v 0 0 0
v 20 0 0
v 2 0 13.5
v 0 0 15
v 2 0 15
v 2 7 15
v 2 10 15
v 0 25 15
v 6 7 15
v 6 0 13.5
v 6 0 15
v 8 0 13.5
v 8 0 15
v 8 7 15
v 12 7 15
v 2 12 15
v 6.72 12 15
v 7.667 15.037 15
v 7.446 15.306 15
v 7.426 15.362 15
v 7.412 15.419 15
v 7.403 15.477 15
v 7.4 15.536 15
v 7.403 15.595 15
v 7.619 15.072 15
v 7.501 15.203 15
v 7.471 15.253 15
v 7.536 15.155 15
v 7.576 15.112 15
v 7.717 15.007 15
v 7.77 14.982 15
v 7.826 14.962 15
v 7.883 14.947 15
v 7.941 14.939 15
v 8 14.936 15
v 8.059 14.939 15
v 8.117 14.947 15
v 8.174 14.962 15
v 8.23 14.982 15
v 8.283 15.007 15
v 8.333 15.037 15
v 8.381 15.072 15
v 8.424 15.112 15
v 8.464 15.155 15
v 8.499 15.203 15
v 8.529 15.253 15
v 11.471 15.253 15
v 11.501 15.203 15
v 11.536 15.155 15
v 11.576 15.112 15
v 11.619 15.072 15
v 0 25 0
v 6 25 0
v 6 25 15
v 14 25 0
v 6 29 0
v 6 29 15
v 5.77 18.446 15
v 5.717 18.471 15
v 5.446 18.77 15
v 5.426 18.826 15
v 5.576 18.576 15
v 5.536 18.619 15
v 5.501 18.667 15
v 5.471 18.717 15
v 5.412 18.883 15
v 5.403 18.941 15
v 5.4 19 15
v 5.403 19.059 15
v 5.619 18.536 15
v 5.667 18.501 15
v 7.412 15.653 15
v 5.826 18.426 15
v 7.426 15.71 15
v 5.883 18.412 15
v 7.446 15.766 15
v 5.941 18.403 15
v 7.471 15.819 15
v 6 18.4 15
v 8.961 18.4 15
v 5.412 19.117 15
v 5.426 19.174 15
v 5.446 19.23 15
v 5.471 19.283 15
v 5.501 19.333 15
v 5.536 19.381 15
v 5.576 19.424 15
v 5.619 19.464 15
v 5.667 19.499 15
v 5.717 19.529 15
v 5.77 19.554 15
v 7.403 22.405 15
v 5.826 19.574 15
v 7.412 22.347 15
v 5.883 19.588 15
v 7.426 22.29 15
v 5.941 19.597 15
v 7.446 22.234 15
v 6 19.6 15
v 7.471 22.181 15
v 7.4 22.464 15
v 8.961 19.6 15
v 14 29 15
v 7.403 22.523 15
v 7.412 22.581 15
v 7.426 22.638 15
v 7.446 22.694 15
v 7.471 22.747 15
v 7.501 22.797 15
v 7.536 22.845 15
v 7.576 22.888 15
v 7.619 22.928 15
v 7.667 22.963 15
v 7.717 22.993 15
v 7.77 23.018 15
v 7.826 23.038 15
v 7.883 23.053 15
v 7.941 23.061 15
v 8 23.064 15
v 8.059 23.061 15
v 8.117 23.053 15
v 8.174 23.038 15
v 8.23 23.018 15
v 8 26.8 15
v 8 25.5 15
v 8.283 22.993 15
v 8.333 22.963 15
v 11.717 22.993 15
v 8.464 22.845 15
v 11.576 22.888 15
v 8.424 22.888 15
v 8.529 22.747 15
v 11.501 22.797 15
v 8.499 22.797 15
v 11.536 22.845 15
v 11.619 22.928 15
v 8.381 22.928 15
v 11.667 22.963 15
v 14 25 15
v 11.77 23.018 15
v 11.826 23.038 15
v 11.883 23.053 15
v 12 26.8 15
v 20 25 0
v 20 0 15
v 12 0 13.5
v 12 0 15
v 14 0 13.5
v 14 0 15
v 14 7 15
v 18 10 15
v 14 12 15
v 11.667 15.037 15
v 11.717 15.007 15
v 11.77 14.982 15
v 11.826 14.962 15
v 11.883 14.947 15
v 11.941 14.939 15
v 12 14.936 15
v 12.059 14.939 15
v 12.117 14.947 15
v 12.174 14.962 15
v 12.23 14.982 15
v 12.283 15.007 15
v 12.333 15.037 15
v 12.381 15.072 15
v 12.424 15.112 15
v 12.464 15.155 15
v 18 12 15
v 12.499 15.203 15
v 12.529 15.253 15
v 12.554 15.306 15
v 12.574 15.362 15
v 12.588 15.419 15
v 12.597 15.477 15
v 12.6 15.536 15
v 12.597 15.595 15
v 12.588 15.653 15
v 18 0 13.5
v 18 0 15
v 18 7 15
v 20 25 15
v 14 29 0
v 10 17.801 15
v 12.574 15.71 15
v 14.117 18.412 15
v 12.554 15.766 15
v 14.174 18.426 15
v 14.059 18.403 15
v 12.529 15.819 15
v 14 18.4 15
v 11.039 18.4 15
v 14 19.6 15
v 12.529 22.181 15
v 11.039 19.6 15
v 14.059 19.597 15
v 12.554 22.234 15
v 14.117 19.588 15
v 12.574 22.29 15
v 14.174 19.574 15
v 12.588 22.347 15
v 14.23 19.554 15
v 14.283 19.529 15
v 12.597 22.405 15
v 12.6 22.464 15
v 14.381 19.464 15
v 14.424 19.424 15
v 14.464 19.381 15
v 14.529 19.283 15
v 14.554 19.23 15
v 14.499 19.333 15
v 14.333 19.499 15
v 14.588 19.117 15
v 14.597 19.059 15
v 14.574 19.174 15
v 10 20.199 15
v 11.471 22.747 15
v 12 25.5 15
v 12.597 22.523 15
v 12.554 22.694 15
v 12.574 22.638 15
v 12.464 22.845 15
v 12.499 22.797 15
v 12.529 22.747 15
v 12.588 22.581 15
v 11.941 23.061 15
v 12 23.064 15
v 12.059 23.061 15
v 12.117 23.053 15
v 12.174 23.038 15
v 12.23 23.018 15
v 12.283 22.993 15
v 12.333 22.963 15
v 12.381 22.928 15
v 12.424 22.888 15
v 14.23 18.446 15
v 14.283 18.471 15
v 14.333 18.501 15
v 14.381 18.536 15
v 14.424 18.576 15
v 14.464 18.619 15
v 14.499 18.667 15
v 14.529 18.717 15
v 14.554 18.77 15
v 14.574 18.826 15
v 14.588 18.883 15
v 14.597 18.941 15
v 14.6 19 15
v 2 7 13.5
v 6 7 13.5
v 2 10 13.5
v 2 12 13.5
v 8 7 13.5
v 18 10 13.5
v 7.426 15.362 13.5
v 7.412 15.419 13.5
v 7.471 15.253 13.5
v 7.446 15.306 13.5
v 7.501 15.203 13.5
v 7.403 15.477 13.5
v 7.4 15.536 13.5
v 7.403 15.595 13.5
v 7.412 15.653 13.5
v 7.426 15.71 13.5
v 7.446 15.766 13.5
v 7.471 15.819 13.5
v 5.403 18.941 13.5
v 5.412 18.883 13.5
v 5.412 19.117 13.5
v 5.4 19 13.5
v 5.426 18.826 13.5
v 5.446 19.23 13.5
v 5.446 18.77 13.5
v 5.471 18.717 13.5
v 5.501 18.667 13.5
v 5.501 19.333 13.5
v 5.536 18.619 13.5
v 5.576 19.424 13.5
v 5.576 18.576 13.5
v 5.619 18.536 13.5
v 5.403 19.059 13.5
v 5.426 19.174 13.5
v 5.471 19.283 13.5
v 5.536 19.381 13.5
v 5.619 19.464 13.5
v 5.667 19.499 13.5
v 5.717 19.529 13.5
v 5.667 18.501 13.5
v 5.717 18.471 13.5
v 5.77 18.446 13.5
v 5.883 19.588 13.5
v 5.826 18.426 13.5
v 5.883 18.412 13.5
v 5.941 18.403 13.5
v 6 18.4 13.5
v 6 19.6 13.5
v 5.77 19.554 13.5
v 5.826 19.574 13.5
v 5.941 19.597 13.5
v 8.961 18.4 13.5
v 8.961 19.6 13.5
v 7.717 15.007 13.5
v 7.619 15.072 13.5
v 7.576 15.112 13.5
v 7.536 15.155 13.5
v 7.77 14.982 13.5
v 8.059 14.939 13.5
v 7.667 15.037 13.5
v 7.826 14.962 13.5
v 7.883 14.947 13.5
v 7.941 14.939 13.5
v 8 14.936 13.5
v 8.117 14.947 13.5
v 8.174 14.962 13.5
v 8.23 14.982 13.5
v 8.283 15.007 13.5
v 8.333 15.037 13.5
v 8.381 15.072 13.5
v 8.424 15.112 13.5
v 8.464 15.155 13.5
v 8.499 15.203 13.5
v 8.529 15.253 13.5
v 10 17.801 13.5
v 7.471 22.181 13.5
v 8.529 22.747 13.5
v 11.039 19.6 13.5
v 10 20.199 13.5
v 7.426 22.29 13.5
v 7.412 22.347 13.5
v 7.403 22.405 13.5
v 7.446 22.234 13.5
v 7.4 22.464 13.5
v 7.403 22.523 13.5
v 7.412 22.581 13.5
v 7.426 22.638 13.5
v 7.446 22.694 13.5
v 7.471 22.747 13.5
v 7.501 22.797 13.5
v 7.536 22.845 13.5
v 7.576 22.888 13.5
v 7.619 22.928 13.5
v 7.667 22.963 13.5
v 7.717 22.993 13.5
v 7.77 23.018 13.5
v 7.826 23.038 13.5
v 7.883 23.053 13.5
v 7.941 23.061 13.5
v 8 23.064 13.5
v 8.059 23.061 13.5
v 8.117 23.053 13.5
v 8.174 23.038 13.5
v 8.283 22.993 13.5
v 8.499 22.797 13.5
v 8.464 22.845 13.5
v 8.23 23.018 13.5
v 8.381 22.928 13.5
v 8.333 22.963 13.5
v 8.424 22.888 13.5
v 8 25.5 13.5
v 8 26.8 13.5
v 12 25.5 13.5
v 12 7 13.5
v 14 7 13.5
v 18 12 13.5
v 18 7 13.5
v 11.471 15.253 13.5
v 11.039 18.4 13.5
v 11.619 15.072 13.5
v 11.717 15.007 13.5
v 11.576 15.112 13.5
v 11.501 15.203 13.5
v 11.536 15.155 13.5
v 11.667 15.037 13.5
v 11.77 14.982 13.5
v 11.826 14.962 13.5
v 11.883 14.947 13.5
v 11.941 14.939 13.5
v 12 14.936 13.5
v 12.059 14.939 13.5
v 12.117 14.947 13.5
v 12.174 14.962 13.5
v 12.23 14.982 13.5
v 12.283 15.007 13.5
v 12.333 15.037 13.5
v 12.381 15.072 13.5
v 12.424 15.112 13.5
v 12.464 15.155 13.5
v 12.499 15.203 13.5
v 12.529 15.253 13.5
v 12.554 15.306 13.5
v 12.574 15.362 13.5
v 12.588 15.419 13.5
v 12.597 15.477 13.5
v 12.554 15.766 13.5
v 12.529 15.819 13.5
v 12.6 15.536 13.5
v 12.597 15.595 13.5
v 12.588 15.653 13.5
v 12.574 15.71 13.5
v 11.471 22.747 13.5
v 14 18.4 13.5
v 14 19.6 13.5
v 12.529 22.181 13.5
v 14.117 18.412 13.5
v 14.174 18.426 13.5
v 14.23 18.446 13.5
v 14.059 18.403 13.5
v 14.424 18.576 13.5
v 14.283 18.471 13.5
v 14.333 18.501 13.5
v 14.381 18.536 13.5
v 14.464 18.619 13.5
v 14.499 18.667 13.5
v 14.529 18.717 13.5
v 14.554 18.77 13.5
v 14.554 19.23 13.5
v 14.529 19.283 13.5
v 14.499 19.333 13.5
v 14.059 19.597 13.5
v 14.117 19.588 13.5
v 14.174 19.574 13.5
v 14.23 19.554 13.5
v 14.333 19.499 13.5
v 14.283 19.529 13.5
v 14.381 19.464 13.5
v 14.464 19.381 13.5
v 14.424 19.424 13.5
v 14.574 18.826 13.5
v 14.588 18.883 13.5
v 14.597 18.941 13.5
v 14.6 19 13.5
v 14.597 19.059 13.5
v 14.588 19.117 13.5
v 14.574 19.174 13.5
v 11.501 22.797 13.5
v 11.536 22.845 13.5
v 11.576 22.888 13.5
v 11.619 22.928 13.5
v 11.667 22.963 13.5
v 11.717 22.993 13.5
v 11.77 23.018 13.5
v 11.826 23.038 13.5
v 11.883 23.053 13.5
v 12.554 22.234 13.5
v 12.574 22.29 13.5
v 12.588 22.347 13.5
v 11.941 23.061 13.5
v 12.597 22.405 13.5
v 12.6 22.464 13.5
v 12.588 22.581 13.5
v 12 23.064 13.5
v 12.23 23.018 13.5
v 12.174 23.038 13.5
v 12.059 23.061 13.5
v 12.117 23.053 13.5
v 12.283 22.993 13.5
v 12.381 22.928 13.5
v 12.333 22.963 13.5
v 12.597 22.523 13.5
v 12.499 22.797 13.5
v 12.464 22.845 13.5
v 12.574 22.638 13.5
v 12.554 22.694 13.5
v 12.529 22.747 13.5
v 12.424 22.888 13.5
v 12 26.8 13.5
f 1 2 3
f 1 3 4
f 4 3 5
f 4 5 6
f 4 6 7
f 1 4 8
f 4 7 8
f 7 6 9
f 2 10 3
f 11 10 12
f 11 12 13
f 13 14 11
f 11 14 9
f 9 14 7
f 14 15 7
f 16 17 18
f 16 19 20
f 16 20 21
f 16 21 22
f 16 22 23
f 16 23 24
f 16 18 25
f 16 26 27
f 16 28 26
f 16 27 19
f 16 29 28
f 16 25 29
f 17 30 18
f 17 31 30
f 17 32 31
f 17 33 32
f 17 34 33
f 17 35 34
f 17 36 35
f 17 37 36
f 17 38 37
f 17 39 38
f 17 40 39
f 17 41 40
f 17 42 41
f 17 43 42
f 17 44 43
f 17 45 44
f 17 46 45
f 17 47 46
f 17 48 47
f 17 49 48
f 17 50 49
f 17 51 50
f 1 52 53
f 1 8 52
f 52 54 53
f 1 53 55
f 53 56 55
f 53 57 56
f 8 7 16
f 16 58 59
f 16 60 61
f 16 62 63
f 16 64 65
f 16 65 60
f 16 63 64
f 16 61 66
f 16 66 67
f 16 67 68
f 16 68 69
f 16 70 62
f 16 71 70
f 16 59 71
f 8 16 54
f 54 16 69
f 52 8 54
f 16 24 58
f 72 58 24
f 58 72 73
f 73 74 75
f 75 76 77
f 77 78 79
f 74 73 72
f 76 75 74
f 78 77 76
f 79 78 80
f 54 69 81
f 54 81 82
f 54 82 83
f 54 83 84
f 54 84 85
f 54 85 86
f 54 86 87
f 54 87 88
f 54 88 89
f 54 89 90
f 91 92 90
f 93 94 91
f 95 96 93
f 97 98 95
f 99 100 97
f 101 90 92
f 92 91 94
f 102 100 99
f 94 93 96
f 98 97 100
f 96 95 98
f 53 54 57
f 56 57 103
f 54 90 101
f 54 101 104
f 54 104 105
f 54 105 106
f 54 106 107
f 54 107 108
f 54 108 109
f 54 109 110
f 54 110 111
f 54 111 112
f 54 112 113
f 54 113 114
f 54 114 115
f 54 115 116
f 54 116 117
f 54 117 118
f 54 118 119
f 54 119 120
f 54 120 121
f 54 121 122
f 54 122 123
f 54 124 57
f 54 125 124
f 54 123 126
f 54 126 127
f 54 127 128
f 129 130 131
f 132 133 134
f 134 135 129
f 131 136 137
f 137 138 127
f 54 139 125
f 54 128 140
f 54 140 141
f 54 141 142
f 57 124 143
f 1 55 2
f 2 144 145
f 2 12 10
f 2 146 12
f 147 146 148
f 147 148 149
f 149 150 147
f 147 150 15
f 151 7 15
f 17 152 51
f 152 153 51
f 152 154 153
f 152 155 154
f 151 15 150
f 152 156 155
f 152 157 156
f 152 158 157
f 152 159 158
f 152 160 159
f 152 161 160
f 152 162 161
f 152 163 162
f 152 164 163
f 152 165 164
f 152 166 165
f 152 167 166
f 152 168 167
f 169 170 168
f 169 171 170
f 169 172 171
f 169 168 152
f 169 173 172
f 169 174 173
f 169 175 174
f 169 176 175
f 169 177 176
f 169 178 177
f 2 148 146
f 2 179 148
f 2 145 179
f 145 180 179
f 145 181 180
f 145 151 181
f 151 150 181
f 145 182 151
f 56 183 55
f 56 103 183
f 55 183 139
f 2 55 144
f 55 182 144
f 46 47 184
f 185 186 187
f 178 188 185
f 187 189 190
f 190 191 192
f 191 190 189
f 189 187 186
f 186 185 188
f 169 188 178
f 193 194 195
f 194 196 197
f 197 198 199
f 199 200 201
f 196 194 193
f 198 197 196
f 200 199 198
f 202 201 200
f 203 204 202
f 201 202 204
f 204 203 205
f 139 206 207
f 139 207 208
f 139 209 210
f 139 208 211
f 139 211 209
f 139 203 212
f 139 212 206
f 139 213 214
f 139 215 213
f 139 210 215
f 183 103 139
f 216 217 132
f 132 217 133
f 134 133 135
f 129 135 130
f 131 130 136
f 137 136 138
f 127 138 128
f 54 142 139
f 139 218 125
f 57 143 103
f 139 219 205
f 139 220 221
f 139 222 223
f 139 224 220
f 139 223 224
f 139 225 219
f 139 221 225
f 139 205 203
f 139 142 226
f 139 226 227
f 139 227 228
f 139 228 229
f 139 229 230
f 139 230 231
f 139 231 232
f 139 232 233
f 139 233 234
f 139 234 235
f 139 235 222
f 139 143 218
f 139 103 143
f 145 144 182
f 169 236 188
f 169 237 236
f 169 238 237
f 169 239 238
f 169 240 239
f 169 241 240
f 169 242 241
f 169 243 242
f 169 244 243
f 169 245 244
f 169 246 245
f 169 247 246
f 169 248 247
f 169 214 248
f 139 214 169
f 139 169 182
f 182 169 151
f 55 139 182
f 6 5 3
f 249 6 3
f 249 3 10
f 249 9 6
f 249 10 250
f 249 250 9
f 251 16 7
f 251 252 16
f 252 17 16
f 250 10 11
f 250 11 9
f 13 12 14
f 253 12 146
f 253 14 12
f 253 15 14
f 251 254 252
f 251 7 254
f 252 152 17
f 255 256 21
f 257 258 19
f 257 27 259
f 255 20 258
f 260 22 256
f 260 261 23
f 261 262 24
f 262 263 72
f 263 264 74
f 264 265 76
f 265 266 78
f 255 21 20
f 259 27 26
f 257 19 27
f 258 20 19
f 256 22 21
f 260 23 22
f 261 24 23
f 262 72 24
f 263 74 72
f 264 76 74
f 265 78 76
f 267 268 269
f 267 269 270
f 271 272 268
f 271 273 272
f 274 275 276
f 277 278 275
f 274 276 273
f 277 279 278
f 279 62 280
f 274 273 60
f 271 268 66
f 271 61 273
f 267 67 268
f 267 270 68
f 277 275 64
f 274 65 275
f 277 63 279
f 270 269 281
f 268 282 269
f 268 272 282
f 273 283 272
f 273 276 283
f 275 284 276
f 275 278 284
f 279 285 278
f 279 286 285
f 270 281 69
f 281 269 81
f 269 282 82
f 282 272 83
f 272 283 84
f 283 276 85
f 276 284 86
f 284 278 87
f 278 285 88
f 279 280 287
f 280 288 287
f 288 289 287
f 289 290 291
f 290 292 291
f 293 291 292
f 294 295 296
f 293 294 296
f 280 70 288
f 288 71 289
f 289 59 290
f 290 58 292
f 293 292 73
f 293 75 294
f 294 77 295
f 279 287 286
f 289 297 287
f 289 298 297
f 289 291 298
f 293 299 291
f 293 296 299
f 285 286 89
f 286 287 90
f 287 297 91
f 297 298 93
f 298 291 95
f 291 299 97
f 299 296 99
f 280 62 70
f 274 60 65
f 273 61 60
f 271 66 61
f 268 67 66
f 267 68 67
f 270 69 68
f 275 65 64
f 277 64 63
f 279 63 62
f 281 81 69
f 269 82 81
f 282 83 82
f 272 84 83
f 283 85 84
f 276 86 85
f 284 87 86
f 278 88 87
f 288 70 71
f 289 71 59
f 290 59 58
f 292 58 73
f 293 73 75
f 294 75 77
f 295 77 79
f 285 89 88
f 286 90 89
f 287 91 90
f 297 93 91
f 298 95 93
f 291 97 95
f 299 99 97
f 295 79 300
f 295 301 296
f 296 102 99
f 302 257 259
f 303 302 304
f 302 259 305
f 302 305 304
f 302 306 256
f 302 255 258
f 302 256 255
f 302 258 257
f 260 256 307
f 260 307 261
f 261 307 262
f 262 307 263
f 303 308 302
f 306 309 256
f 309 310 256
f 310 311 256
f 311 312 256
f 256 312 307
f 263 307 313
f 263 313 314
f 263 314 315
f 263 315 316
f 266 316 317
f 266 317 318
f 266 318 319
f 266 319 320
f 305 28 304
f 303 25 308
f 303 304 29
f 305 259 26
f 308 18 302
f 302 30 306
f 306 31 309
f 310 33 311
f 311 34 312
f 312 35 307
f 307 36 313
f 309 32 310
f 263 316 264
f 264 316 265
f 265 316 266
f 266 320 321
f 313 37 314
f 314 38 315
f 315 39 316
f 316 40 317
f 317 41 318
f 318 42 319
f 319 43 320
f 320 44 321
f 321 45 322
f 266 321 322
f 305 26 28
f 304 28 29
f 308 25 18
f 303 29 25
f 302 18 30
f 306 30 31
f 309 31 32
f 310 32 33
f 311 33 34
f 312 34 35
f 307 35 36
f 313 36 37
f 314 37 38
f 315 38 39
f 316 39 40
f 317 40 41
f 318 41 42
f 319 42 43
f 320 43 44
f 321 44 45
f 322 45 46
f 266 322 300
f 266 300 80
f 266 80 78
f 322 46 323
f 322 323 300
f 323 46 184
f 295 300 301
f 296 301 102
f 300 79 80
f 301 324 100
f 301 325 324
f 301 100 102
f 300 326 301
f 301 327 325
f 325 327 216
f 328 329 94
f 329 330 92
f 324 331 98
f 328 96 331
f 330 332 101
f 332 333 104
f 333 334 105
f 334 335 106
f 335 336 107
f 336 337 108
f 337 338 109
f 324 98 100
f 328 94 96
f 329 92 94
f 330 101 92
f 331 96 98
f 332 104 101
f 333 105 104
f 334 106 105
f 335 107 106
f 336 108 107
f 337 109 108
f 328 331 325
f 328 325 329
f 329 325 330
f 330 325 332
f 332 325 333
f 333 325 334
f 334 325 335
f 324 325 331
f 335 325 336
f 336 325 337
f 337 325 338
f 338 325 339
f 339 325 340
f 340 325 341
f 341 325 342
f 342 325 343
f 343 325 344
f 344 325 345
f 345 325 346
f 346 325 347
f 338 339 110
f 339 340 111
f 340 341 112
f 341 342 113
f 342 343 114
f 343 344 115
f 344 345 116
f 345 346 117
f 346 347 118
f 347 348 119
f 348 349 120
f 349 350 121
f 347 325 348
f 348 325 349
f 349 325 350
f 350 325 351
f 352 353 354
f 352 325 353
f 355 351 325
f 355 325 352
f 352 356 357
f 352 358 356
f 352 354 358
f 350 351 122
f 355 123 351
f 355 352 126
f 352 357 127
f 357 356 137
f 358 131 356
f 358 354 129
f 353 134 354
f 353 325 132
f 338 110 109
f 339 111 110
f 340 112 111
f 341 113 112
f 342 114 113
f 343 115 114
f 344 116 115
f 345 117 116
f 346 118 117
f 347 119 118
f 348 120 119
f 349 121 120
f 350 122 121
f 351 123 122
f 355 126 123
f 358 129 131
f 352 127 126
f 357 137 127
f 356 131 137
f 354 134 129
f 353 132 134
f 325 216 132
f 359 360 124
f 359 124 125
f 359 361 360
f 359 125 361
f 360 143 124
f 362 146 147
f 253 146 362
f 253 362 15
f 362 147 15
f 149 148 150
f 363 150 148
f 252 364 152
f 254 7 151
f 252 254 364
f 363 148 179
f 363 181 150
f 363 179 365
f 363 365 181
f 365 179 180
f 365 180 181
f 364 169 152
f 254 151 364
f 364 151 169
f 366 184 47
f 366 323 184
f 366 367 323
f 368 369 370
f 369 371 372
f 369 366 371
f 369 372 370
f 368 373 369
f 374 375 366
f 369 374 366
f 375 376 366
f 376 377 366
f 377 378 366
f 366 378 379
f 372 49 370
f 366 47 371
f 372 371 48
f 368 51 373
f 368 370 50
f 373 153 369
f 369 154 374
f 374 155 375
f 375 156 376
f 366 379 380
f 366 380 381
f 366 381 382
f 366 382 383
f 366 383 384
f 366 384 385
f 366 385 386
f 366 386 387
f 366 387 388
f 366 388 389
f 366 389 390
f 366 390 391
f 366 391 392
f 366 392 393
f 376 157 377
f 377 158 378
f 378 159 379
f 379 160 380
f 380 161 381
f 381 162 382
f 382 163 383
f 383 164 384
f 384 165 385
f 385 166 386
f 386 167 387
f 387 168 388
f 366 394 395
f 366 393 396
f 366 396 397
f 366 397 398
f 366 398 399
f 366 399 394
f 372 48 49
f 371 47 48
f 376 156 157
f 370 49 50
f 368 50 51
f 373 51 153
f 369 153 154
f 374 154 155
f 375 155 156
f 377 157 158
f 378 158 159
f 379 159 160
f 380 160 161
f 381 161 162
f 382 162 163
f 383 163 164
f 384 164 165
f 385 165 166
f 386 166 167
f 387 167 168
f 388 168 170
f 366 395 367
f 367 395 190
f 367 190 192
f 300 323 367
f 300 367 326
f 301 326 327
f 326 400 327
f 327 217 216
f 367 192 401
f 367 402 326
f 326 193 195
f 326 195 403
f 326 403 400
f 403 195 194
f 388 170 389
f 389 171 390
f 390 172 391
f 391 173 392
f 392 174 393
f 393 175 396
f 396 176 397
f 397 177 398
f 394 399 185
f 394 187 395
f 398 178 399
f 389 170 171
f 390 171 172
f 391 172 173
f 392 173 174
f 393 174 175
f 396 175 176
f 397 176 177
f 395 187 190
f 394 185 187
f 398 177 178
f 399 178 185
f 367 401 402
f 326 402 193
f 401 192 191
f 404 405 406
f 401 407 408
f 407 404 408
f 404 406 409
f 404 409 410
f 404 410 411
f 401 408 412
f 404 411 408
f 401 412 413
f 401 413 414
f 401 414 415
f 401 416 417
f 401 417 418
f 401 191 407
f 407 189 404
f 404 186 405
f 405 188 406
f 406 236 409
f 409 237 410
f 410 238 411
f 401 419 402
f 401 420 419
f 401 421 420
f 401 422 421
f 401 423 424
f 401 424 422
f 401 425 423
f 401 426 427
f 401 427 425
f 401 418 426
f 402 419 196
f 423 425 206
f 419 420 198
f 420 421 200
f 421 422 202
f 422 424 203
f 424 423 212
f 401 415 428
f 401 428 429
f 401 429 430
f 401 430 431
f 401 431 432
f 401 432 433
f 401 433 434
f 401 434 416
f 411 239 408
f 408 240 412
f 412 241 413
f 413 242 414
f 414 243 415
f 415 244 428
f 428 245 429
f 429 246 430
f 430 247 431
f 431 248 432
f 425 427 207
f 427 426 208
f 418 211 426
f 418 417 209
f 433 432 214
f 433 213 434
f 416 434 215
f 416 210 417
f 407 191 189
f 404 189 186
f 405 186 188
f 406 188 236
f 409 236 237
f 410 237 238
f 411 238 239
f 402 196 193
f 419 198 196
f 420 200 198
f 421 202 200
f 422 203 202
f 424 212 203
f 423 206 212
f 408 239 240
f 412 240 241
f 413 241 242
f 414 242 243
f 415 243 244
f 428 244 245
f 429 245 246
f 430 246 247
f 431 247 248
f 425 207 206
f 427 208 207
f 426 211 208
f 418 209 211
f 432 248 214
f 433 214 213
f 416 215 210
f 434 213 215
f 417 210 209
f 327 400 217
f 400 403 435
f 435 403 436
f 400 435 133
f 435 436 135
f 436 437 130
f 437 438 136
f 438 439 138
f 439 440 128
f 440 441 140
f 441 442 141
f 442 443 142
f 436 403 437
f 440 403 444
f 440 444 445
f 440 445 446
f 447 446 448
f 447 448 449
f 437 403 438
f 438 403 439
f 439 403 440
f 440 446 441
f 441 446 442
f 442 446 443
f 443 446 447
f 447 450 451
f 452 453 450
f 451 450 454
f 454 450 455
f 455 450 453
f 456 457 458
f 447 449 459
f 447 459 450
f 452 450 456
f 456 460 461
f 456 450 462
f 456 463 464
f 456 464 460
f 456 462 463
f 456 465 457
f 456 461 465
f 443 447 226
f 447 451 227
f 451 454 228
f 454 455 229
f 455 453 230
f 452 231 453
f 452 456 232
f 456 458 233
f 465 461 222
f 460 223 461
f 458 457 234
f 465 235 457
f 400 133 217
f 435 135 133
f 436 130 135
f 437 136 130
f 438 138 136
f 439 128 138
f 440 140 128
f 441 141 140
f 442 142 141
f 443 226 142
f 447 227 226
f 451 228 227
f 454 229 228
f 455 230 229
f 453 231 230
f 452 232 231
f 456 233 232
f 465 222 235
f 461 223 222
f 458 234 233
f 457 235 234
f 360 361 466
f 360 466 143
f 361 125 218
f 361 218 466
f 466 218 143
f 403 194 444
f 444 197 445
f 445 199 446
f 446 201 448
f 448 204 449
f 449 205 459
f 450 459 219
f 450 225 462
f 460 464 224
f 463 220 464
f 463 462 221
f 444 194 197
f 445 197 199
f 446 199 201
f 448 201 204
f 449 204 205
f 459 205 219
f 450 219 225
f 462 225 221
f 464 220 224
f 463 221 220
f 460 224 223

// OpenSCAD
// Facade game piece in mm: X width, Y height, Z depth.
// Place Z=0 flat on the build plate; all recessed details are 1.5 mm deep.
$fn=64;
module rect(x,y,w,h){translate([x,y]) square([w,h]);}
module disk(x,y,r){translate([x,y]) circle(r=r);}
module line(a,b,w=1.5){hull(){translate(a) circle(d=w);translate(b) circle(d=w);}}
module path(points,w=1.5){for(i=[0:len(points)-2]) line(points[i],points[i+1],w);}
module cross_icon(x,y,size=6,bar=1.8){union(){rect(x-size/2,y-bar/2,size,bar);rect(x-bar/2,y-size/2,bar,size);}}
module tank(x,y,w,h){union(){rect(x,y,w,h-w/2);disk(x+w/2,y+h-w/2,w/2);}}
module ring(x,y,r,w=1.3){difference(){disk(x,y,r);disk(x,y,r-w);}}

module silhouette(){
union(){rect(0,0,20,25);rect(6,25,8,4);}
}
module facade_recesses(){union(){
for(a=[0,60,120]){line([10-4*cos(a),19-4*sin(a)],[10+4*cos(a),19+4*sin(a)],1.2);}
// The six main arms form a large, robust snowflake symbol.
for(x=[2,8,14]) rect(x,0,4,7);
rect(2,10,16,2);
rect(8,25.5,4,1.3);
}}
difference(){
 linear_extrude(height=15) silhouette();
 translate([0,0,13.5]) linear_extrude(height=2) facade_recesses();
}
